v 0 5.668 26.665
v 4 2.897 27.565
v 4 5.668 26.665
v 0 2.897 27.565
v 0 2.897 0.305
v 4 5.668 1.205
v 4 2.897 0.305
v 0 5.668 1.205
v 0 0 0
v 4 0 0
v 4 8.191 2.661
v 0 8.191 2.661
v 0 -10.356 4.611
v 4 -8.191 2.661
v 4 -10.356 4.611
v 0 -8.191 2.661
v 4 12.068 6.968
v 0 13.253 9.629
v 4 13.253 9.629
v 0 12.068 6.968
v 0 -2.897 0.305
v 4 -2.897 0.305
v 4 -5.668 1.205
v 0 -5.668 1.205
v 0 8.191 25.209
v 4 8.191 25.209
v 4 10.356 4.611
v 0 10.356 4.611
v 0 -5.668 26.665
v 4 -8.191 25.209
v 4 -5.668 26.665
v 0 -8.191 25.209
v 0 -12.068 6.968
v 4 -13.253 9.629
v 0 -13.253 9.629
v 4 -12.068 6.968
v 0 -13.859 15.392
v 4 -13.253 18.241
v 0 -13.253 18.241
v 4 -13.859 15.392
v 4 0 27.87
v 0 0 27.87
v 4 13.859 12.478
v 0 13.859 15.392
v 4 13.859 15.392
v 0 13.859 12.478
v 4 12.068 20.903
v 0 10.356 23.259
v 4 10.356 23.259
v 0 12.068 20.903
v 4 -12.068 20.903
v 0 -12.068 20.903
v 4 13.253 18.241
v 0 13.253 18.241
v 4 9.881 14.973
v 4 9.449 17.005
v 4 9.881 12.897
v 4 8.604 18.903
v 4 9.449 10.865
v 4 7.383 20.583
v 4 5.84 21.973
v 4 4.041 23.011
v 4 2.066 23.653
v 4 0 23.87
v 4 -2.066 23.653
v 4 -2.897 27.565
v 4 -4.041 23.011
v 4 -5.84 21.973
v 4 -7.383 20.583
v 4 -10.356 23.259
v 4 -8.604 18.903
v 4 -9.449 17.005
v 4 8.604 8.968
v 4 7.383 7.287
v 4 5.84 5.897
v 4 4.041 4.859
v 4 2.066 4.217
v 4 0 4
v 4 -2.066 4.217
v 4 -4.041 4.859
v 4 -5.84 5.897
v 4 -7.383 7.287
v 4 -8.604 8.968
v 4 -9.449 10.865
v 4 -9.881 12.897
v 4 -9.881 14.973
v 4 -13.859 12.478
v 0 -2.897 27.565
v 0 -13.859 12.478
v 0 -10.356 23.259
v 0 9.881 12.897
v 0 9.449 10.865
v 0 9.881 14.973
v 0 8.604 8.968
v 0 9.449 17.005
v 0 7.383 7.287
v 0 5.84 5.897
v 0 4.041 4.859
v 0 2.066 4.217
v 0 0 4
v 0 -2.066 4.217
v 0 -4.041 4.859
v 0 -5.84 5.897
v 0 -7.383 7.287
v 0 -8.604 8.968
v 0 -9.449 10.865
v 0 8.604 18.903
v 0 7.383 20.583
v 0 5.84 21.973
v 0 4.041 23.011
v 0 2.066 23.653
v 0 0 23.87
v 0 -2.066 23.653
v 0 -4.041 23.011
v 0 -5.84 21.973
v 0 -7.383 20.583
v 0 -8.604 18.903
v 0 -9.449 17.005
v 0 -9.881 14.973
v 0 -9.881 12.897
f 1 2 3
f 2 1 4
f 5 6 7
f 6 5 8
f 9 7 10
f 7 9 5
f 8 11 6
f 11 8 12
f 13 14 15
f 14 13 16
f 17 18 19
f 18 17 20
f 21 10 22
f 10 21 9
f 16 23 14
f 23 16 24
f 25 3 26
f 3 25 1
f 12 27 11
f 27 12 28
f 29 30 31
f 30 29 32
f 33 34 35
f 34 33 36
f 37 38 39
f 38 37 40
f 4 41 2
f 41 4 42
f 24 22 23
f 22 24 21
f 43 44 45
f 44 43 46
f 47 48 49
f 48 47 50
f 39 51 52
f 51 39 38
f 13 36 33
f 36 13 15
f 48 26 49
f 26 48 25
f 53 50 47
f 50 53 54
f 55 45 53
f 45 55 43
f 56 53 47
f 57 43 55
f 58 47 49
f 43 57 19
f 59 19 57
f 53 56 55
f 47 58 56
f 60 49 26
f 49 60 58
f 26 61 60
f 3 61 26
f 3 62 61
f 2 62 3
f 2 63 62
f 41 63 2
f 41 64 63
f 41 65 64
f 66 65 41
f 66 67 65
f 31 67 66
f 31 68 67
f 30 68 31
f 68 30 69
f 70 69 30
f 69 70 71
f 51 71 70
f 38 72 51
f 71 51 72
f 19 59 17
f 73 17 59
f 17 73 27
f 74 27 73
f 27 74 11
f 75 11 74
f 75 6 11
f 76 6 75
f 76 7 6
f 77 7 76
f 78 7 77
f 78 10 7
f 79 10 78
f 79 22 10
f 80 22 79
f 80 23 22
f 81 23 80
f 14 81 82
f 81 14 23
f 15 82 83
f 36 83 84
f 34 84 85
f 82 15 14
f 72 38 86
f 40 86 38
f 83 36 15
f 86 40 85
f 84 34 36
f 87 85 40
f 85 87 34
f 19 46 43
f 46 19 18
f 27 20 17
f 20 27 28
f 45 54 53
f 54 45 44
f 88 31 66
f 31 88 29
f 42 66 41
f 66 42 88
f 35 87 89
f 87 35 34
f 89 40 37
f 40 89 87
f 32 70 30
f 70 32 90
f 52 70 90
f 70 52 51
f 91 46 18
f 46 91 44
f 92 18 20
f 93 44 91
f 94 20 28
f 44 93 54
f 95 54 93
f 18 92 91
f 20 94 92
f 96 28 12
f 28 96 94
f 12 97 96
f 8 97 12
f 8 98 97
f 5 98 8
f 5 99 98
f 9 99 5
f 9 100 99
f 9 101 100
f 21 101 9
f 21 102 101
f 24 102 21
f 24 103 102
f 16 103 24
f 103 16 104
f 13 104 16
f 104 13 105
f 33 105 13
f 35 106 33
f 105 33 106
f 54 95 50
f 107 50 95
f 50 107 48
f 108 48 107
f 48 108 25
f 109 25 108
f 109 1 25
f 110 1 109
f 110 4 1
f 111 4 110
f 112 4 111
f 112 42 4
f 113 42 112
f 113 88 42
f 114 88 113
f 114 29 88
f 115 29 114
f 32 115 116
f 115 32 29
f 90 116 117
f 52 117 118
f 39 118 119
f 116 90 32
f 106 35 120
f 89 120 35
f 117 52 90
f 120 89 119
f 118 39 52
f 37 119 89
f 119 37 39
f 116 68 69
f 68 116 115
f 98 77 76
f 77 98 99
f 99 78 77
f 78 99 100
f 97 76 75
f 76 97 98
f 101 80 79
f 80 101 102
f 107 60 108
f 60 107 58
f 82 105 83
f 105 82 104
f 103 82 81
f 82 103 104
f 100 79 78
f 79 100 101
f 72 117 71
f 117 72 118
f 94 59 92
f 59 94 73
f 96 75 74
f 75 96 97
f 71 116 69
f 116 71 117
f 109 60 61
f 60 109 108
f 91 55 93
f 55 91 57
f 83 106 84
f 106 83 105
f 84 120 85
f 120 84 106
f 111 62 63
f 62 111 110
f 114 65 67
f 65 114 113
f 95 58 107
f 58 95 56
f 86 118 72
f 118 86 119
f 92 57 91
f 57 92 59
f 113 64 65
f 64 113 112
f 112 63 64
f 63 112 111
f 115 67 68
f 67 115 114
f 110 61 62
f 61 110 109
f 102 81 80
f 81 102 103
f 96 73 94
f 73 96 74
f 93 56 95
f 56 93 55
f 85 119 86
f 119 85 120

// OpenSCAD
l = 4;
d = 27.87;
t = 4;

translate([ 0, 0, d / 2 ]) rotate([ 0, 90, 0 ]) difference()
{
    // Outer cylinder
    cylinder(d = d, h = l);

    // Inner cylinder
    cylinder(d = d - 2 * t, h = l);
}
